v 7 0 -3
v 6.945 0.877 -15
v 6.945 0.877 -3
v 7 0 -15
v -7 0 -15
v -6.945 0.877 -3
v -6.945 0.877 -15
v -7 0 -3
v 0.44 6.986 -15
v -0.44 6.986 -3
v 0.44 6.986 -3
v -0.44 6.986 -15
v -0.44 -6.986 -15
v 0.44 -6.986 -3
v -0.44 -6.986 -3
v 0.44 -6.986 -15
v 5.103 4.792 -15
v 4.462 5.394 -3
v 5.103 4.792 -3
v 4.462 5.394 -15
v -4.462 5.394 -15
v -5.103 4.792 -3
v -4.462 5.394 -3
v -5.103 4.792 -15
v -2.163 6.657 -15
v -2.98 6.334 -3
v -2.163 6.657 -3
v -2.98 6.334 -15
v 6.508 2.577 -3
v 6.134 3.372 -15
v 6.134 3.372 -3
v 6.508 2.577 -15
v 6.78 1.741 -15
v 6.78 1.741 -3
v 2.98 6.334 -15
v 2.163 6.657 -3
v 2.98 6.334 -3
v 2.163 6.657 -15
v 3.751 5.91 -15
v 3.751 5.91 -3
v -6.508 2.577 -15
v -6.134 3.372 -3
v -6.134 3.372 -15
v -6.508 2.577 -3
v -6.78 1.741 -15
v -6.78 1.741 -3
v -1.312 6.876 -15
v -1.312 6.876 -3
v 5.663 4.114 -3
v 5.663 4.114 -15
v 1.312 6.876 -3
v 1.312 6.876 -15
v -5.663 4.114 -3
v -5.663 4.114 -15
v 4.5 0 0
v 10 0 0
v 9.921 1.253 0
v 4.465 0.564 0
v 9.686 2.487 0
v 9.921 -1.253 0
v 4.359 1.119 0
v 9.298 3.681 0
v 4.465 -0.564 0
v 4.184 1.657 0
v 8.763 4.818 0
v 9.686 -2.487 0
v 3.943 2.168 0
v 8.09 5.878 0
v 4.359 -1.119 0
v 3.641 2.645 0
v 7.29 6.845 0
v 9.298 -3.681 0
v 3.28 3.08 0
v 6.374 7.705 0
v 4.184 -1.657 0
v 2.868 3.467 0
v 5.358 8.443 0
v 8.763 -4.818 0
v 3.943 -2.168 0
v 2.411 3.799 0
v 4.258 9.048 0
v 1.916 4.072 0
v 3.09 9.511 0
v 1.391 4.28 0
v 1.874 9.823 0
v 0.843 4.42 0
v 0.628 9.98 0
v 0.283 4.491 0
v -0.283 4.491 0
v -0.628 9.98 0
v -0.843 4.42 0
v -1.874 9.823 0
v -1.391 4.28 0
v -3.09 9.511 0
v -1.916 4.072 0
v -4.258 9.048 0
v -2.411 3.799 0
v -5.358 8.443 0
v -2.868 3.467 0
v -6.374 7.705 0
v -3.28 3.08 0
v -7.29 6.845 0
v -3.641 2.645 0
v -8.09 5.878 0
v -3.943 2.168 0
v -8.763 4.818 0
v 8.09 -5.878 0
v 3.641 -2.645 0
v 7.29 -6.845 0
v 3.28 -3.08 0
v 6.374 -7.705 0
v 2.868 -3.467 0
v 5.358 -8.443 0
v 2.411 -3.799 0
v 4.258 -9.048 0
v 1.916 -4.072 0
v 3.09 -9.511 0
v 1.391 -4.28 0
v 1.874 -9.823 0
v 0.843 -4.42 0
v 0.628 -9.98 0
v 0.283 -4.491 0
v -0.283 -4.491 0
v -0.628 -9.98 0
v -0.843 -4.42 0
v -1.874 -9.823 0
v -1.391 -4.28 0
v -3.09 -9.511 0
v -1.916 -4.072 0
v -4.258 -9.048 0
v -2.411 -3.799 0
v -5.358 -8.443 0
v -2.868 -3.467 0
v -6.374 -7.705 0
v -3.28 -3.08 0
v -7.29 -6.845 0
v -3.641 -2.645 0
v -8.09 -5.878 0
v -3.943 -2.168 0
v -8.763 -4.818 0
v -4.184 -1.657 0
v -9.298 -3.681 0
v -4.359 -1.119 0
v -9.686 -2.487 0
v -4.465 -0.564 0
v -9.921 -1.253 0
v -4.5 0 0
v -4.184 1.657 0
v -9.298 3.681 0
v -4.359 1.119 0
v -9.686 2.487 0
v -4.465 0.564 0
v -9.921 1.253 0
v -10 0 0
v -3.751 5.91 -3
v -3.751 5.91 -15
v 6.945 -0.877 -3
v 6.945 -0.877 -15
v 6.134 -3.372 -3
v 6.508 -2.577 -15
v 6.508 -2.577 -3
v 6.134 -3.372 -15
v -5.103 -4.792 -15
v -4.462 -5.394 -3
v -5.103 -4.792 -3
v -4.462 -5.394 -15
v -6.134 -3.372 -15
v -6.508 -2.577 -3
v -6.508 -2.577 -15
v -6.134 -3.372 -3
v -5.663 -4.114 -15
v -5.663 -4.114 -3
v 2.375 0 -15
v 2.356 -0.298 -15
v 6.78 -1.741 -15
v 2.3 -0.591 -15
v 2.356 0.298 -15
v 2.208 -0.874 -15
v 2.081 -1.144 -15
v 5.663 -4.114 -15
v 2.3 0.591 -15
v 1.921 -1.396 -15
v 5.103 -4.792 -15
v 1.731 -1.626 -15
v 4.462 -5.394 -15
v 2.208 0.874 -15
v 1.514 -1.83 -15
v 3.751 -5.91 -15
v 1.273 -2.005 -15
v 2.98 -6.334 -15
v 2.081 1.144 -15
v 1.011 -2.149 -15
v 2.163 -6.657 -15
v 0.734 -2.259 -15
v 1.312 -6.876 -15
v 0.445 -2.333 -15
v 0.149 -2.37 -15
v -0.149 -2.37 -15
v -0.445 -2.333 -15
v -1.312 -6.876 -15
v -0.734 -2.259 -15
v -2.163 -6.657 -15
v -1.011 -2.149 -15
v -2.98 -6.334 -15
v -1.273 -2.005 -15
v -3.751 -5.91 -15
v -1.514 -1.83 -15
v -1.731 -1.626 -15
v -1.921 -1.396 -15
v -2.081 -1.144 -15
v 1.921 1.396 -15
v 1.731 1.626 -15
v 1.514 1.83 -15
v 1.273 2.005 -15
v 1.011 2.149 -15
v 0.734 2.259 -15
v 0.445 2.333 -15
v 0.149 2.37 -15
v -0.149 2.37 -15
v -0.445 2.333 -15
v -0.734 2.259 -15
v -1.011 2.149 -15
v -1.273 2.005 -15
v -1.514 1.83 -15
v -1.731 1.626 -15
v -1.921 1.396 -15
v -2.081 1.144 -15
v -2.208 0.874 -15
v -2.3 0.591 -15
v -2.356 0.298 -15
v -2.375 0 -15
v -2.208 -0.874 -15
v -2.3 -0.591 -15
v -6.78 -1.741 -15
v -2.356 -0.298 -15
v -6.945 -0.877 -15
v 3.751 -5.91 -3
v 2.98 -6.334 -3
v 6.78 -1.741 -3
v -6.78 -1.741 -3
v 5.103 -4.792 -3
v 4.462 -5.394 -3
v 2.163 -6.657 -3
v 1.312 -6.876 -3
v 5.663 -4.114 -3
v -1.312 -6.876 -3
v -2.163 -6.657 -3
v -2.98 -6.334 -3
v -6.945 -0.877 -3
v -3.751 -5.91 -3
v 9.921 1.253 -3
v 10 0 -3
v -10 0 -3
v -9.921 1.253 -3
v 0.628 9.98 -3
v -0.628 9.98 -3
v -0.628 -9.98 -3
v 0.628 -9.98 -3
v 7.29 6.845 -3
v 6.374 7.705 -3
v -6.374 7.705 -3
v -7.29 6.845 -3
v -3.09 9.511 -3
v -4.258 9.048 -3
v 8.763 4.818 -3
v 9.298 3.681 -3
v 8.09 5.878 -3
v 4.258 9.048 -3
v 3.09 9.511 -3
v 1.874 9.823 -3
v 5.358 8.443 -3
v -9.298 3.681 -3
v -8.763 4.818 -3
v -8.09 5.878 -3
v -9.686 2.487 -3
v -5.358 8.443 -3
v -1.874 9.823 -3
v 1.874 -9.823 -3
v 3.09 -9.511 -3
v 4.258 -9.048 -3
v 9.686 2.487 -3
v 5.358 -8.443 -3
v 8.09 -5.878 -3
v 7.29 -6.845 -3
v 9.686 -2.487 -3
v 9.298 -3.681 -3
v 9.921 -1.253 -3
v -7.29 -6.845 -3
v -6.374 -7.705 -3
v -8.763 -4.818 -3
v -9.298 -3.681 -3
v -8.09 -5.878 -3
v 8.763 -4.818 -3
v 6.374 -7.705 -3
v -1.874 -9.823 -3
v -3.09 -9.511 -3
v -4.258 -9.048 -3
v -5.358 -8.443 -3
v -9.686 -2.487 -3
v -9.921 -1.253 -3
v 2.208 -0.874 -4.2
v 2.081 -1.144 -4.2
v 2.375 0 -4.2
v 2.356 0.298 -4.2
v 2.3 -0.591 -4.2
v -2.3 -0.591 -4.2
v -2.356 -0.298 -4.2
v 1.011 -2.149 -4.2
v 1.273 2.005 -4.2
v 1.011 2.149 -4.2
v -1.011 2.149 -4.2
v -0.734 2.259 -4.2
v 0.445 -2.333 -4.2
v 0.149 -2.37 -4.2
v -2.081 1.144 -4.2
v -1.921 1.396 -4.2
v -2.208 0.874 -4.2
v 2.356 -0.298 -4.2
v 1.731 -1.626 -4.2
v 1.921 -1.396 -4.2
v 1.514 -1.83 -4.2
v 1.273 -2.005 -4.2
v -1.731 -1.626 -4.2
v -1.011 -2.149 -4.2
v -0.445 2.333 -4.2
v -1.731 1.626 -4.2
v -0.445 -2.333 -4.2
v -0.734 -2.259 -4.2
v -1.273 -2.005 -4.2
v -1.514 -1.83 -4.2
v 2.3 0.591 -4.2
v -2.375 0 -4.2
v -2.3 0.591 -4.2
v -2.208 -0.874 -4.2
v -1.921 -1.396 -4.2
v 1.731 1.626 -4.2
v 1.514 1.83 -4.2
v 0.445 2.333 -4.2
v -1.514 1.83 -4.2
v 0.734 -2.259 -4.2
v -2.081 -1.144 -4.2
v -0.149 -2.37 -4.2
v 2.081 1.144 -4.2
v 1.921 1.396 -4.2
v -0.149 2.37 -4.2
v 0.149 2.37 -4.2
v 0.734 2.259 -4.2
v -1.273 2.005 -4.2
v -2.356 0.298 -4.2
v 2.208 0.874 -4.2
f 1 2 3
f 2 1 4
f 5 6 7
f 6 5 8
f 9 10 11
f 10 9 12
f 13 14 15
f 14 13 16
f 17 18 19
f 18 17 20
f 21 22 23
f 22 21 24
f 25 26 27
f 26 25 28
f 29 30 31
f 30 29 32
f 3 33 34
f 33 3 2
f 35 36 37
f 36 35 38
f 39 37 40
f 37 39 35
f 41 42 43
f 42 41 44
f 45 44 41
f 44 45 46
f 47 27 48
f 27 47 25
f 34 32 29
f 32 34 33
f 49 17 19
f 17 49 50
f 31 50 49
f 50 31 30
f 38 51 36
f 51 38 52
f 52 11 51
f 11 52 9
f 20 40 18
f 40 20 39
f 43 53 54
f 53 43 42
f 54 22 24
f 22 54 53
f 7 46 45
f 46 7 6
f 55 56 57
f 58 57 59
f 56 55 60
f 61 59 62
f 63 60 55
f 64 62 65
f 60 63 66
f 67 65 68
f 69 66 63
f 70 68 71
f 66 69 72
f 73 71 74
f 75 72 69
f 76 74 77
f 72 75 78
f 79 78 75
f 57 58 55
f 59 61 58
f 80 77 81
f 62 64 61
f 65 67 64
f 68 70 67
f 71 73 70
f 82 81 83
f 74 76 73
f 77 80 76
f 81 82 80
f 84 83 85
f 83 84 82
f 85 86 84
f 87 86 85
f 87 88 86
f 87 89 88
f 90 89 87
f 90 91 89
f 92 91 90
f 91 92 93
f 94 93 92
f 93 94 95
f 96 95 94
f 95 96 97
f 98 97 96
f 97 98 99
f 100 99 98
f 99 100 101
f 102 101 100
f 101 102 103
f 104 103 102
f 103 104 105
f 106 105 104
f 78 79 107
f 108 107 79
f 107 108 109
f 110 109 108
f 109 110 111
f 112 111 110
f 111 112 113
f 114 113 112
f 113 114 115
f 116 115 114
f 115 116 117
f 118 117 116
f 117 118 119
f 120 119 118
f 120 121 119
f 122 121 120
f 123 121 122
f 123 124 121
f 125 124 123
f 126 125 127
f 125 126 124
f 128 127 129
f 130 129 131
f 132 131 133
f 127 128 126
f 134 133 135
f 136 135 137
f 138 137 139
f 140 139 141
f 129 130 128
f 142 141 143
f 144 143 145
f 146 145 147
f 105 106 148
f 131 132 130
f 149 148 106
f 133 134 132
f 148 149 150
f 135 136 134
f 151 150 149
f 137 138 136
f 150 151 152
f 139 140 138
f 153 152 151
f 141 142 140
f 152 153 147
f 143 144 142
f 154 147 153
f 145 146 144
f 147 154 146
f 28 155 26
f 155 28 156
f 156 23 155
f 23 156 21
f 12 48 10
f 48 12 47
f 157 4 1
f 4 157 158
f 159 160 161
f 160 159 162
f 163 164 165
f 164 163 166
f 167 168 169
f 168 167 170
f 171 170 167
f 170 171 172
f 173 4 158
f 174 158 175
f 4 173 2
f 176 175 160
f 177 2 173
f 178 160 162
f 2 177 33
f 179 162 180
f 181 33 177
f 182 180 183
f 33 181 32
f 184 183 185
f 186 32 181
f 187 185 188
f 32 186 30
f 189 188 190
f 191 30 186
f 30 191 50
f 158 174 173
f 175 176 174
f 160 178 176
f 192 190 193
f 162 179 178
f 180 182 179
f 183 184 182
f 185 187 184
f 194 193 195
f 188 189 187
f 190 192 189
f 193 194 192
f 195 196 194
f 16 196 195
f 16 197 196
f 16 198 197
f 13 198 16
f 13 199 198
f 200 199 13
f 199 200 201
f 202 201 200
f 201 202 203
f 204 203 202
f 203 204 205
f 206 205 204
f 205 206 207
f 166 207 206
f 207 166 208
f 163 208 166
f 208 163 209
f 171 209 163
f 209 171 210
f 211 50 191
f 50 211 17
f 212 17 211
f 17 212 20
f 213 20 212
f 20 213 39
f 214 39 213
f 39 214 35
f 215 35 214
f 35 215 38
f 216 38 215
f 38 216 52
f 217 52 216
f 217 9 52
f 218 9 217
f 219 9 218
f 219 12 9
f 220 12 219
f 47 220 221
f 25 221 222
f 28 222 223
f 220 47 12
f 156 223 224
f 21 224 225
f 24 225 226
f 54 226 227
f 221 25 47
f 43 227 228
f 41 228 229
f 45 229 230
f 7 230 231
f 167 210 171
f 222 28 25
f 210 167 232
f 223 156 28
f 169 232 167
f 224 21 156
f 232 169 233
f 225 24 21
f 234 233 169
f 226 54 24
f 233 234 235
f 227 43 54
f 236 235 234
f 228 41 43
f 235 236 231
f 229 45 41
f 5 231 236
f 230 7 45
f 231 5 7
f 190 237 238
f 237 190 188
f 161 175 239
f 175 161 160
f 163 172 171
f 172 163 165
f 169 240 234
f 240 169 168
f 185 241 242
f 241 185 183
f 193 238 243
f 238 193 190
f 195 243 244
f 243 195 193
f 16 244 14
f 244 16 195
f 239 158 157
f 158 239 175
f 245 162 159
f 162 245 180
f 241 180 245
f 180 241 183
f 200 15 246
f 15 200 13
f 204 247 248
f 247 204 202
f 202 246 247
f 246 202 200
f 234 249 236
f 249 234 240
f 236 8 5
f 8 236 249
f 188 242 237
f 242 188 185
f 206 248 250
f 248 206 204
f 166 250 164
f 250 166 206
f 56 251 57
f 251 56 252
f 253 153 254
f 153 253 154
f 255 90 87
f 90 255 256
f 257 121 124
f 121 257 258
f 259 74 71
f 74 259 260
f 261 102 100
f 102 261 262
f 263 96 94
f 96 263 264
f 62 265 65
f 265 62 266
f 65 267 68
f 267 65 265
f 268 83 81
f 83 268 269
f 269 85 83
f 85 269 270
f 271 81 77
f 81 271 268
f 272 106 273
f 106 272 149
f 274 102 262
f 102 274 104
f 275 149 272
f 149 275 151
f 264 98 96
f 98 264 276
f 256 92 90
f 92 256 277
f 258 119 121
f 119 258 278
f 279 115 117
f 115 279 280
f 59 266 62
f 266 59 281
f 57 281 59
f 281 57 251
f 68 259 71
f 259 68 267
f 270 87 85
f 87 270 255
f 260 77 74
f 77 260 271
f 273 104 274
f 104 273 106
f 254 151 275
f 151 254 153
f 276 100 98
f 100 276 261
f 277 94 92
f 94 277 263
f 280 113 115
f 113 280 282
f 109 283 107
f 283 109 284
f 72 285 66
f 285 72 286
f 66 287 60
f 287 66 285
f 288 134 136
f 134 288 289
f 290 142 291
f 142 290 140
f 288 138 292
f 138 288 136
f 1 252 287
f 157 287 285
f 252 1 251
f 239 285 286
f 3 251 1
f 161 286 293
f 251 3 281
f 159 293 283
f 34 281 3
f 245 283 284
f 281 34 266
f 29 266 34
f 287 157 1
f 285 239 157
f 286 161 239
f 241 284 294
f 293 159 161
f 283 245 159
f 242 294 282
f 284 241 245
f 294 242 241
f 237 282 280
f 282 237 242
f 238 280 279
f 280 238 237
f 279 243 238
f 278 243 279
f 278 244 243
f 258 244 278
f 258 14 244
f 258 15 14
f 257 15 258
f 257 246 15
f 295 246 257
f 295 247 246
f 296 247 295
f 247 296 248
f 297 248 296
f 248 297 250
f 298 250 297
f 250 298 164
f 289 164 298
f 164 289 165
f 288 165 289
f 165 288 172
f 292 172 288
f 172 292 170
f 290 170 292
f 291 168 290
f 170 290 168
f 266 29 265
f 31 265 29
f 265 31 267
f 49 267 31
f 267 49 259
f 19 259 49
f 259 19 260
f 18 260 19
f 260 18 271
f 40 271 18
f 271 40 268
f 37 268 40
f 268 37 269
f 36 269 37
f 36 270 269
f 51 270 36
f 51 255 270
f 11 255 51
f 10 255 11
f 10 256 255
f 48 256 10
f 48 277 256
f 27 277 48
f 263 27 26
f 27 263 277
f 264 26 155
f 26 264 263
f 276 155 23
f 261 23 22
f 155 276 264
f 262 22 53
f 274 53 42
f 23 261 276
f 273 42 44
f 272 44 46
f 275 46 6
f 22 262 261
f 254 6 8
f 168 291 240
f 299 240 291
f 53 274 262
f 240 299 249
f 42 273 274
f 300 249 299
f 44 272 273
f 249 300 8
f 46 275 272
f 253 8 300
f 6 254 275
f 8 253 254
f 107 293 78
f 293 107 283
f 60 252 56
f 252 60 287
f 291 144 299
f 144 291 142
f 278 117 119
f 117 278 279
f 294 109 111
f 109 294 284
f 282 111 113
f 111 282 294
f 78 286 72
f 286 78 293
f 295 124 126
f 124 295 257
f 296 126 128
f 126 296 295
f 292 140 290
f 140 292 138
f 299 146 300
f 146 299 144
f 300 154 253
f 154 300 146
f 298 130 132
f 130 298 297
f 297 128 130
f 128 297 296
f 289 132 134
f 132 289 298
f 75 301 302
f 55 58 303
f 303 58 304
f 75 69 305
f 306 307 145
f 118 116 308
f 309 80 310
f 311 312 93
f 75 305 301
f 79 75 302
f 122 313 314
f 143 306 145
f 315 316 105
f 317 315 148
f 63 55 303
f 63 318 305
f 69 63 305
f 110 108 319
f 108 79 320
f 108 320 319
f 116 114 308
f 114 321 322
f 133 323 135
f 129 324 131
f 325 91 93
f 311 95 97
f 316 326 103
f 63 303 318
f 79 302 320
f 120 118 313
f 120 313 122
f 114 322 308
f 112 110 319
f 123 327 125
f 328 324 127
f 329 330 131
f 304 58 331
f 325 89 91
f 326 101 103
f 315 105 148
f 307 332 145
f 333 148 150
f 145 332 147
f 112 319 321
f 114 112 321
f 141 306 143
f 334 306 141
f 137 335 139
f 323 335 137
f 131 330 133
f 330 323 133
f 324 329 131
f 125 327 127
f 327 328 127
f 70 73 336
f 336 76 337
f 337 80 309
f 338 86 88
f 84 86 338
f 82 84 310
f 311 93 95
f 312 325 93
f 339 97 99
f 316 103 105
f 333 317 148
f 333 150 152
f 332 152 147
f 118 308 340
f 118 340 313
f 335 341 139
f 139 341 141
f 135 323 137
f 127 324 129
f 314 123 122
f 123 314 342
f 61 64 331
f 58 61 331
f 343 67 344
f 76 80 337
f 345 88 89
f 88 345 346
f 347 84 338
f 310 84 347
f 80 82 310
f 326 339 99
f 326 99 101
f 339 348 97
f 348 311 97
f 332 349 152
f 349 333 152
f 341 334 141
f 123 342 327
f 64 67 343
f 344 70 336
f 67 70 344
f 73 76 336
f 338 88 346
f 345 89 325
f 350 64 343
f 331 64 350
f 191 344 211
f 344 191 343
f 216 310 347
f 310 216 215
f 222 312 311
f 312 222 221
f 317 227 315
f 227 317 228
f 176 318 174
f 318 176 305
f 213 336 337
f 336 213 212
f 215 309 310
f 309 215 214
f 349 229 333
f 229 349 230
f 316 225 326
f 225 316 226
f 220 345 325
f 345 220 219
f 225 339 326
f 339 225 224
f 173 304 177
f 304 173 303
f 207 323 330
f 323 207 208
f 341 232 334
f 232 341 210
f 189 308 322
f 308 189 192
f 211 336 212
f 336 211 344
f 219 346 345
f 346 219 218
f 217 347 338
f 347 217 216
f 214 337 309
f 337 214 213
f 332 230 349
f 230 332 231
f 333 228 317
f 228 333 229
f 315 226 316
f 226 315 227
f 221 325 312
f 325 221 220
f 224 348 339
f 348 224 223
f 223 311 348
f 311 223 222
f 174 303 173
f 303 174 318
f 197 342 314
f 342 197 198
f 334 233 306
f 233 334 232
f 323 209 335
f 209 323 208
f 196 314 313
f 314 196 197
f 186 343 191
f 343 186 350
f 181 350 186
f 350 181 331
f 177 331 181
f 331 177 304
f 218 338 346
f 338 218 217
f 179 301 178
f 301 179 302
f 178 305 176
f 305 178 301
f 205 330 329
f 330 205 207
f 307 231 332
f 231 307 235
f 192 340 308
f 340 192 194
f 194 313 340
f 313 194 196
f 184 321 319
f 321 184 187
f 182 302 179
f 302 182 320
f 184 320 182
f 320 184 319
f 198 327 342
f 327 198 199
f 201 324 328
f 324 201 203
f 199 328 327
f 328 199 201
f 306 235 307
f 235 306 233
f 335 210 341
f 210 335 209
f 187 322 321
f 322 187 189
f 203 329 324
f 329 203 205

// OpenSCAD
$fn = 50;


difference() {
	union() {
		translate(v = [0, 0, -15.0000000000]) {
			cylinder(h = 15, r = 7.0000000000);
		}
		translate(v = [0, 0, -3.0000000000]) {
			cylinder(h = 3, r = 10.0000000000);
		}
	}
	union() {
		translate(v = [0, 0, 0]) {
			rotate(a = [0, 0, 0]) {
				difference() {
					union() {
						#translate(v = [0, 0, -15.0000000000]) {
							cylinder(h = 15, r = 2.2500000000);
						}
						#translate(v = [0, 0, -4.2000000000]) {
							cylinder(h = 4.2000000000, r = 7.0000000000, r1 = 2.3750000000, r2 = 4.5000000000);
						}
						#translate(v = [0, 0, -15.0000000000]) {
							cylinder(h = 15, r = 2.3750000000);
						}
						#translate(v = [0, 0, -15.0000000000]) {
							cylinder(h = 15, r = 2.2500000000);
						}
					}
					union();
				}
			}
		}
	}
}
